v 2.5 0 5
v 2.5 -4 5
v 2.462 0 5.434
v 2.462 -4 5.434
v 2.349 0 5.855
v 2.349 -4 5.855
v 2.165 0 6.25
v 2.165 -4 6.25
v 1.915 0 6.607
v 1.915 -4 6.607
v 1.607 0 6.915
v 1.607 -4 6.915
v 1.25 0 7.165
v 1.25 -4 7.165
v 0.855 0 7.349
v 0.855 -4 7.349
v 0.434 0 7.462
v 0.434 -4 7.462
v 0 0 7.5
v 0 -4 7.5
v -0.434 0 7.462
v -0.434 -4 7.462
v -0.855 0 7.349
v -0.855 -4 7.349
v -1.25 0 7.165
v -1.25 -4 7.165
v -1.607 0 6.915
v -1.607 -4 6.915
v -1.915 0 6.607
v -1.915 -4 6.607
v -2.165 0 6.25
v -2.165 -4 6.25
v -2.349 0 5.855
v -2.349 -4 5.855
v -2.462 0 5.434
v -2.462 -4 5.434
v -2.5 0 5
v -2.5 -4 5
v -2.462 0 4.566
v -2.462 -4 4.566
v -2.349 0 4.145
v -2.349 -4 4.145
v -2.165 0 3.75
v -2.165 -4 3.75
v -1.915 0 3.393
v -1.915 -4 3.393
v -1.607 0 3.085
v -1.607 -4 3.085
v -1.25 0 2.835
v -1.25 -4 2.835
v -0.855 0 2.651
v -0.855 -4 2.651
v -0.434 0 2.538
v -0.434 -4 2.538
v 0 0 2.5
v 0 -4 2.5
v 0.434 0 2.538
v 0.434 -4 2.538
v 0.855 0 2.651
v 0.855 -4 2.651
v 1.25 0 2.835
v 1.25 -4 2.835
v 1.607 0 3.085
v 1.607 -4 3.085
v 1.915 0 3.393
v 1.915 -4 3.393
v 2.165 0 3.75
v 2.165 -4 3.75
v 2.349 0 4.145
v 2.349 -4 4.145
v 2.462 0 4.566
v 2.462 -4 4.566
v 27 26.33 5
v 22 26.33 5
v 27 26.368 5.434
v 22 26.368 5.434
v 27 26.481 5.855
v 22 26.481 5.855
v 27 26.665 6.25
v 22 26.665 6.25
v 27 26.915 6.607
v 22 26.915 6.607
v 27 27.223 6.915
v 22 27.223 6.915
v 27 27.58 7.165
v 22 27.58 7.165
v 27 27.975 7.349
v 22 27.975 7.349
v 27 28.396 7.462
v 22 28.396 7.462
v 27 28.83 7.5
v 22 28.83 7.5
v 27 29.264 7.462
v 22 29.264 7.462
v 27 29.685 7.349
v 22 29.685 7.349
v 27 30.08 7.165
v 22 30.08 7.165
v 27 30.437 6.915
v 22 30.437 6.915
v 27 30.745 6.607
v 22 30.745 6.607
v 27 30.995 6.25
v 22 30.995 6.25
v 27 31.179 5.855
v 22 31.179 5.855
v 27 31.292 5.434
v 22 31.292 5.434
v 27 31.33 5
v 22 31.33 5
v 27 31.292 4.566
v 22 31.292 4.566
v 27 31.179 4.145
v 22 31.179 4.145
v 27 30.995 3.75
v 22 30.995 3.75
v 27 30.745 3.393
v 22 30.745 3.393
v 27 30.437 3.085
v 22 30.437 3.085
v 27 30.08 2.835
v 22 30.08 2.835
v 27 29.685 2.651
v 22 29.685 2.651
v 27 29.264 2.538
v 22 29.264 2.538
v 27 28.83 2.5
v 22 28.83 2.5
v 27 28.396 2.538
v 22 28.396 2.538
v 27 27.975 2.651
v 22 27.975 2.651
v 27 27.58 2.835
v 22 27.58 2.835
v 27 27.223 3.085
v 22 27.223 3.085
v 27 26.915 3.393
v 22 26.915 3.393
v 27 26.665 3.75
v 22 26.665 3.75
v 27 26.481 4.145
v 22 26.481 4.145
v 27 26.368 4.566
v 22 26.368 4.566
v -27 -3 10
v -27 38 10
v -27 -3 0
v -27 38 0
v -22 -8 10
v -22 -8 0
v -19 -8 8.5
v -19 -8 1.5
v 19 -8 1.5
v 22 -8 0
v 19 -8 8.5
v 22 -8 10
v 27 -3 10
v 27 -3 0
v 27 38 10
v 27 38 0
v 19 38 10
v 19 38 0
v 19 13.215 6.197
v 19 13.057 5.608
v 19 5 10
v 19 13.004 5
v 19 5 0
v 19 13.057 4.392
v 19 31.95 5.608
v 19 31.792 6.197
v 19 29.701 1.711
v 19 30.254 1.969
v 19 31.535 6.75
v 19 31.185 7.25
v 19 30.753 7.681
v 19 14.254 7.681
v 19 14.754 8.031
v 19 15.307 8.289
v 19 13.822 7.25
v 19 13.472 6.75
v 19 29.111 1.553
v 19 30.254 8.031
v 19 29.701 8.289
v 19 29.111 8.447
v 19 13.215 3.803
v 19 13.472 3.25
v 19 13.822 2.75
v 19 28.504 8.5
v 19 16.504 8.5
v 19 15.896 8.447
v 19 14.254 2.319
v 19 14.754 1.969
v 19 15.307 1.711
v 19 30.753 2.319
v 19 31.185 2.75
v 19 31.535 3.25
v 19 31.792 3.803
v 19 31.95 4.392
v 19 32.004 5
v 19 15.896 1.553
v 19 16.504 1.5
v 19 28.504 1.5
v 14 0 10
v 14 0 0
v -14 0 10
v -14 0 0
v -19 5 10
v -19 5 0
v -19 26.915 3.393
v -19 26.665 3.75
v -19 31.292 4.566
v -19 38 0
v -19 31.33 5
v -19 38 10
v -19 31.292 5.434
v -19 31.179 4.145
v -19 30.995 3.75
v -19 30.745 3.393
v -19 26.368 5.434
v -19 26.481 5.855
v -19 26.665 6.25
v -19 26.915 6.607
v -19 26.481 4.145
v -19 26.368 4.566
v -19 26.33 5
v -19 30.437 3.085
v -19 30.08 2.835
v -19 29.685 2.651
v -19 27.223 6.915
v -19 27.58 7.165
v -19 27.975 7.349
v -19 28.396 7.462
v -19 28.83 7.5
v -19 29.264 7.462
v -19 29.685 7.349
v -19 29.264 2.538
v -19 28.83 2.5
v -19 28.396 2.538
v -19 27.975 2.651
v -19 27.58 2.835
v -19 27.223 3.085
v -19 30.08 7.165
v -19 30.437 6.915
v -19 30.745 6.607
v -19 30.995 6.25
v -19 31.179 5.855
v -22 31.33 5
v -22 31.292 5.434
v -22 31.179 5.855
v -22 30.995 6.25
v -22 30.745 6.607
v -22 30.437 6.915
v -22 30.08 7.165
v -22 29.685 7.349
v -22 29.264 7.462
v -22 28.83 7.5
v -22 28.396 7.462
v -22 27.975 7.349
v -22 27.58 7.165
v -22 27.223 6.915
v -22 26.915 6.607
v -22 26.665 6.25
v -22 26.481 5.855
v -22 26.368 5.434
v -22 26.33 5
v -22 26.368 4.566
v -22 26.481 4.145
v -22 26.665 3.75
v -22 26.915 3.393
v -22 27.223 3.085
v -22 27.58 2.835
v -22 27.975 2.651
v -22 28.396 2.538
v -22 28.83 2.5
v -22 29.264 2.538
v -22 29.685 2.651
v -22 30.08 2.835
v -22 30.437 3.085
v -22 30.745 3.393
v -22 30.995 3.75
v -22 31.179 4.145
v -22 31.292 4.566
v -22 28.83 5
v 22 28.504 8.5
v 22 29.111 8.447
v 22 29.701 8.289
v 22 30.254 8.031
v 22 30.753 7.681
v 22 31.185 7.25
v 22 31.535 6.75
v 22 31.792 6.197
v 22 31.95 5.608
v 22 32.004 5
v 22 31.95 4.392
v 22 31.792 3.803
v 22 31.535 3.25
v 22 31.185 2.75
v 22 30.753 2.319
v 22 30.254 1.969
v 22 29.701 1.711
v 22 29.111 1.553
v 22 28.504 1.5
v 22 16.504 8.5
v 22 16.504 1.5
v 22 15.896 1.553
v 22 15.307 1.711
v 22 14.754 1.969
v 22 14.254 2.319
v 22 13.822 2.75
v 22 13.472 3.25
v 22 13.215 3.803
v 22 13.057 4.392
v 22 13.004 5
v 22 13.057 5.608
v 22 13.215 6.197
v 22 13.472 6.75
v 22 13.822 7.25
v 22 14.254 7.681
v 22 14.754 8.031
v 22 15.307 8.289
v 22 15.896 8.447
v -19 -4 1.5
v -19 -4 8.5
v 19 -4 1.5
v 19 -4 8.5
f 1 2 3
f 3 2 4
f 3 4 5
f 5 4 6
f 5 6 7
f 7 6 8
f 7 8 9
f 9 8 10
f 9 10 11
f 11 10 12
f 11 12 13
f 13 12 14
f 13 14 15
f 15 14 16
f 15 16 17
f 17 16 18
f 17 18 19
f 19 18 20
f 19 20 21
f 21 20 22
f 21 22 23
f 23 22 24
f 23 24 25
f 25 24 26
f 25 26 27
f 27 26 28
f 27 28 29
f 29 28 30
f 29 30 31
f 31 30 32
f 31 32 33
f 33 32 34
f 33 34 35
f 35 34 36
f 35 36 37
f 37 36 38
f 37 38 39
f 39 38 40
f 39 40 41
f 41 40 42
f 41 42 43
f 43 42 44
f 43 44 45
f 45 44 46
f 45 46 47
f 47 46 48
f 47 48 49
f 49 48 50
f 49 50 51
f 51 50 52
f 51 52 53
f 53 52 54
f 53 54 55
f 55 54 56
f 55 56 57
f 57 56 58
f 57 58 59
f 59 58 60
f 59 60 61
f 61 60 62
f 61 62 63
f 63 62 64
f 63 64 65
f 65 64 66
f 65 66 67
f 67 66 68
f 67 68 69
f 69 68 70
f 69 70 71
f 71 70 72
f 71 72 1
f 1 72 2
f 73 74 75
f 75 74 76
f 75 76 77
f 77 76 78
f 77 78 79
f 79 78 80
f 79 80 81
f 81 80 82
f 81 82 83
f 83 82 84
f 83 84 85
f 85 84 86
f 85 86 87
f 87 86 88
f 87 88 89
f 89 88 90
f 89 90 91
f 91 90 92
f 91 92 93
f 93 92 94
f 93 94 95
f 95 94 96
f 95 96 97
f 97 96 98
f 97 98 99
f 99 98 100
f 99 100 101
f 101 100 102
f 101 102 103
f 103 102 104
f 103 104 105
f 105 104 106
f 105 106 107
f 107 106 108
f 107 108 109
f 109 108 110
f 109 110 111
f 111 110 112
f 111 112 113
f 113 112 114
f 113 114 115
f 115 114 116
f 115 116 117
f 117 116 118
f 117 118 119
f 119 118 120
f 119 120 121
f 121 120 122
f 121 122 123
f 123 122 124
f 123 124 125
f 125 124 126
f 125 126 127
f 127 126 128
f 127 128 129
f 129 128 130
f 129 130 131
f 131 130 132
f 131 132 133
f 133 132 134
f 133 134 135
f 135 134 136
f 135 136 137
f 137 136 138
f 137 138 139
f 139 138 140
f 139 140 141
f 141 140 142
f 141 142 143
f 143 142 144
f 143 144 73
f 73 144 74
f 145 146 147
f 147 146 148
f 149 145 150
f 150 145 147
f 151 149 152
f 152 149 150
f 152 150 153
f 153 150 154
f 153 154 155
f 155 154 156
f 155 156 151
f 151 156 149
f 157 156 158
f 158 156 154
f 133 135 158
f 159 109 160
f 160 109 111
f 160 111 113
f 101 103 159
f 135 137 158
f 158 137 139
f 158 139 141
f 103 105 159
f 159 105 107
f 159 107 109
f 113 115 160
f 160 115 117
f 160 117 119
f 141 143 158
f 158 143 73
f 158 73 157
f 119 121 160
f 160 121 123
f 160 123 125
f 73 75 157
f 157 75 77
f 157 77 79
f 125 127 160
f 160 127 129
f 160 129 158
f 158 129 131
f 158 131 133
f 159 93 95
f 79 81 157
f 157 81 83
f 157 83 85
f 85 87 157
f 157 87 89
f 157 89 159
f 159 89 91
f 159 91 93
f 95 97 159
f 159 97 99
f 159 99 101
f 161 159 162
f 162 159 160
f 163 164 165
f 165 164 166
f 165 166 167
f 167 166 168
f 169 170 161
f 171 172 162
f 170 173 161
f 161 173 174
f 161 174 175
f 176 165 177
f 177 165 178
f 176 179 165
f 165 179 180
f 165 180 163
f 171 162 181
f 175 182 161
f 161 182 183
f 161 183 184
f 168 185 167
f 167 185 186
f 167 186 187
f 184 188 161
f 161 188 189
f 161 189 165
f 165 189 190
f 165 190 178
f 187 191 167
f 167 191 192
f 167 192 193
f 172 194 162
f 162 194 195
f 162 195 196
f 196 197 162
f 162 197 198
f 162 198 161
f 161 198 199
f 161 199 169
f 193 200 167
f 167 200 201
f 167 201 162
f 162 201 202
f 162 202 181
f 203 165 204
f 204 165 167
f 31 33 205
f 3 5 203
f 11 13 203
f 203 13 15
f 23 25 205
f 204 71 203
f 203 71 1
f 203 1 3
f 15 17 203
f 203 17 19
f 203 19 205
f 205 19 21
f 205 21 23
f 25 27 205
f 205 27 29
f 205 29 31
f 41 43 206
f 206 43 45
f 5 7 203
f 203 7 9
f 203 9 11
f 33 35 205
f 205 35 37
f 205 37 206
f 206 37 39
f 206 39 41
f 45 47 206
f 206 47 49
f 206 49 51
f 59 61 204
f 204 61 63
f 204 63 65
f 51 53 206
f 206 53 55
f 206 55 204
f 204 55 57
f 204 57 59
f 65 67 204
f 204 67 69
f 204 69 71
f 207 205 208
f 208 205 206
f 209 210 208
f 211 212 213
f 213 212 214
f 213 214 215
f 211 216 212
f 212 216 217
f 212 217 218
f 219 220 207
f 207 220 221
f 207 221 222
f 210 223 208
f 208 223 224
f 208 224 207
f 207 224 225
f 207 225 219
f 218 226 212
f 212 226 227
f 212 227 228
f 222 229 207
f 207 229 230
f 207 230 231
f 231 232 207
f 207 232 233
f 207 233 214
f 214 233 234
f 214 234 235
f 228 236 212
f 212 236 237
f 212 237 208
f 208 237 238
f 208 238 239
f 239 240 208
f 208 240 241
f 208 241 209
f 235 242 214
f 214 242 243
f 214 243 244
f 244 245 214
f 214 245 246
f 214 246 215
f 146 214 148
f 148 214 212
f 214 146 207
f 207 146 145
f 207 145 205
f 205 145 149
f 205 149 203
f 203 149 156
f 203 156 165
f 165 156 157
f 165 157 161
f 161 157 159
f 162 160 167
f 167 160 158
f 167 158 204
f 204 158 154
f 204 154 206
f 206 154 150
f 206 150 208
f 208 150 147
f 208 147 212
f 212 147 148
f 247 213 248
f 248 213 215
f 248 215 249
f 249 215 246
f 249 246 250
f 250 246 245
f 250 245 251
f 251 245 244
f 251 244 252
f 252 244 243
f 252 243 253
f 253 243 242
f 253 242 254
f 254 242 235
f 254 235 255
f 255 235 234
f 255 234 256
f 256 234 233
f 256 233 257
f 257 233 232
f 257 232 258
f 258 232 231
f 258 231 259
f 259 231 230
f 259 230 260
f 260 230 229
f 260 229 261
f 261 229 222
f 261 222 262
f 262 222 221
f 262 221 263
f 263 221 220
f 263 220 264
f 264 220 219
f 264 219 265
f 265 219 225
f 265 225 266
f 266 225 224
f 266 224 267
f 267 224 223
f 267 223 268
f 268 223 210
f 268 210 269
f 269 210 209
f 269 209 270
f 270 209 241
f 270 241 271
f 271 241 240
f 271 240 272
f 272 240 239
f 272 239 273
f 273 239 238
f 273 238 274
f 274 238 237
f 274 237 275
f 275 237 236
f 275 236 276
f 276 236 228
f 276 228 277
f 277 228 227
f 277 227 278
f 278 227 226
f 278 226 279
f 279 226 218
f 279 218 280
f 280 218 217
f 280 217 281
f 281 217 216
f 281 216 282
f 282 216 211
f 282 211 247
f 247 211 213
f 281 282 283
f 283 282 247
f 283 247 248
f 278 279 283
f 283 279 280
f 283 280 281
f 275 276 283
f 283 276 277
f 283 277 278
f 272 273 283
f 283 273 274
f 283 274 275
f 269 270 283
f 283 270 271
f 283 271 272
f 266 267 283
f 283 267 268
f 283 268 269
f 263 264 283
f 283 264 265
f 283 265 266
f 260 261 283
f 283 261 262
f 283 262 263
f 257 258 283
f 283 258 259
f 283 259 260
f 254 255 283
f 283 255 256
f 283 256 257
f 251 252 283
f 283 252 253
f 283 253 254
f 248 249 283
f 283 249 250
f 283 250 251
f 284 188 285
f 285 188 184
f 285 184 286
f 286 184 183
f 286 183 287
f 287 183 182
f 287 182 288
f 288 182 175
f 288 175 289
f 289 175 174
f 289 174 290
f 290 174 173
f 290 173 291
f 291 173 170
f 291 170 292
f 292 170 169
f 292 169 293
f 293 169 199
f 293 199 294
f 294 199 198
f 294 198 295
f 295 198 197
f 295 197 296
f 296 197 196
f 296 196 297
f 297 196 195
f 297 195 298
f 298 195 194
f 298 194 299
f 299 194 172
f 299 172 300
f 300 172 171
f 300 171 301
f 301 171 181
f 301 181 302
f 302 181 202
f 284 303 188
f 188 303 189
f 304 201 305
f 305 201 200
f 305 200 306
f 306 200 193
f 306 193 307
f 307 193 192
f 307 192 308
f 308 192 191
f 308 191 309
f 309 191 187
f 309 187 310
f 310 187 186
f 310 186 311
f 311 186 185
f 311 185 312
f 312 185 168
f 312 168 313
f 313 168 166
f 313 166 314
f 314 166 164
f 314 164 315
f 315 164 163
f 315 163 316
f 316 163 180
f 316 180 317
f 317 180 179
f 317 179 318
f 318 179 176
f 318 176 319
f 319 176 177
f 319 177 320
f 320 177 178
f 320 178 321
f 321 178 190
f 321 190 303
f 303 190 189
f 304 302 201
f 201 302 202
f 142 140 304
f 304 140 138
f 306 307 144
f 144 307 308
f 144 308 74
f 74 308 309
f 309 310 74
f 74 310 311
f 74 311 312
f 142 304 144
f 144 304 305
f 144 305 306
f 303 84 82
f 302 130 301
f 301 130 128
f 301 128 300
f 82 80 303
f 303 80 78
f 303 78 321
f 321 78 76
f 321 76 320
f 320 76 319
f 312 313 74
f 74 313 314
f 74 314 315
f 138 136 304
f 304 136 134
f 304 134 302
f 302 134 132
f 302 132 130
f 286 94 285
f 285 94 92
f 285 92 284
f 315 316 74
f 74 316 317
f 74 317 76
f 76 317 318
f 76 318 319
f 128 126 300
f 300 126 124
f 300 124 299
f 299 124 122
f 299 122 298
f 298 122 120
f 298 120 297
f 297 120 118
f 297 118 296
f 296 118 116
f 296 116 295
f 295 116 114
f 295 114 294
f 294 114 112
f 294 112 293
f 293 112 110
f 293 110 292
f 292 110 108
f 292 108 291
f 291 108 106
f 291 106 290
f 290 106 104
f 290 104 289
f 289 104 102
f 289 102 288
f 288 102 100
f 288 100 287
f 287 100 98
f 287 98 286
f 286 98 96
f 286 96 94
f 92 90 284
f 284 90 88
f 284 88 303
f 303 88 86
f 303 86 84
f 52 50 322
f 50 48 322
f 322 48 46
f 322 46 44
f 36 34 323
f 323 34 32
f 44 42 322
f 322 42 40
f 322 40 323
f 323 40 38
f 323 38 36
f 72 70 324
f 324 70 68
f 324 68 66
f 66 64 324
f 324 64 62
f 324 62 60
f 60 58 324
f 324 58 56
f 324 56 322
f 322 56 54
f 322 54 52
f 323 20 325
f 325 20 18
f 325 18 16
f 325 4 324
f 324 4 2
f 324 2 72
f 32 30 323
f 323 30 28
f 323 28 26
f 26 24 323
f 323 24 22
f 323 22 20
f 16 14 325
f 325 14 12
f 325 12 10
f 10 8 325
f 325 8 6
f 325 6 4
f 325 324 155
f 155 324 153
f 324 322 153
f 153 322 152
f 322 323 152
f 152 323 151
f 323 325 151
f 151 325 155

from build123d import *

# Parameters (mm, degrees)
BOSS_EXTRUDE1_DEPTH            = 10
SKETCH2_R                      = 2.5
CUT_EXTRUDE1_DEPTH             = 3
CUT_EXTRUDE1_DIRECTION_2_REACH = 62.498
CUT_EXTRUDE2_DEPTH             = 3
CUT_EXTRUDE3_REACH             = 56.268
SKETCH4_R                      = 2.5
SKETCH5_W                      = 38
SKETCH5_H                      = 7
CUT_EXTRUDE4_DEPTH             = 4


with BuildPart() as part:
    # Sketch1 → Boss-Extrude1 (new body)
    with BuildSketch(Plane.XY):
        Polygon((-27, 38), (-19, 38), (-19, 5), (-14, 0), (14, 0), (19, 5), (19, 38), (27, 38), (27, -3), (22, -8), (-22, -8), (-27, -3), align=None)
    extrude(amount=BOSS_EXTRUDE1_DEPTH)

    # Sketch2 → Cut-Extrude1 (cut)
    with BuildSketch(Plane(origin=(-19, 0, 0), x_dir=(0, 0, -1), z_dir=(1, 0, 0))):
        with Locations(Location((-5, 28.83, 0), (0, 0, 90))):
            Circle(SKETCH2_R)
    extrude(amount=-CUT_EXTRUDE1_DEPTH, mode=Mode.SUBTRACT)

    # Sketch2 → Cut-Extrude1 direction 2 (cut, up to next)
    with BuildSketch(Plane(origin=(-19, 0, 0), x_dir=(0, 0, -1), z_dir=(1, 0, 0)), mode=Mode.PRIVATE) as cut_extrude1_direction_2_sk1:
        with Locations(Location((-5, 28.83, 0), (0, 0, 90))):
            Circle(SKETCH2_R)
    cut_extrude1_direction_2_tool1 = extrude(cut_extrude1_direction_2_sk1.sketch, amount=CUT_EXTRUDE1_DIRECTION_2_REACH, mode=Mode.PRIVATE) & part.part
    add(cut_extrude1_direction_2_tool1.solids().sort_by_distance((-19, 28.83, 5))[0], mode=Mode.SUBTRACT)

    # Sketch3 → Cut-Extrude2 (cut)
    with BuildSketch(Plane.ZY.offset(-19)):
        with BuildLine():
            Line((8.5, 28.503575447), (8.5, 16.503575447))
            ThreePointArc((8.5, 16.503575447), (5, 13.003575447), (1.5, 16.503575447))
            Line((1.5, 16.503575447), (1.5, 28.503575447))
            ThreePointArc((1.5, 28.503575447), (5, 32.003575447), (8.5, 28.503575447))
        make_face()
    extrude(amount=-CUT_EXTRUDE2_DEPTH, mode=Mode.SUBTRACT)

    # Sketch4 → Cut-Extrude3 (cut, up to next)
    with BuildSketch(Plane.XZ.offset(8), mode=Mode.PRIVATE) as cut_extrude3_sk1:
        with Locations((0, 5)):
            Circle(SKETCH4_R)
    cut_extrude3_tool1 = extrude(cut_extrude3_sk1.sketch, amount=-CUT_EXTRUDE3_REACH, mode=Mode.PRIVATE) & part.part
    add(cut_extrude3_tool1.solids().sort_by_distance((0, -8, 5))[0], mode=Mode.SUBTRACT)

    # Sketch5 → Cut-Extrude4 (cut)
    with BuildSketch(Plane.XZ.offset(8)):
        with Locations((0, 5)):
            Rectangle(SKETCH5_W, SKETCH5_H)
    extrude(amount=-CUT_EXTRUDE4_DEPTH, mode=Mode.SUBTRACT)


solid = part.part
